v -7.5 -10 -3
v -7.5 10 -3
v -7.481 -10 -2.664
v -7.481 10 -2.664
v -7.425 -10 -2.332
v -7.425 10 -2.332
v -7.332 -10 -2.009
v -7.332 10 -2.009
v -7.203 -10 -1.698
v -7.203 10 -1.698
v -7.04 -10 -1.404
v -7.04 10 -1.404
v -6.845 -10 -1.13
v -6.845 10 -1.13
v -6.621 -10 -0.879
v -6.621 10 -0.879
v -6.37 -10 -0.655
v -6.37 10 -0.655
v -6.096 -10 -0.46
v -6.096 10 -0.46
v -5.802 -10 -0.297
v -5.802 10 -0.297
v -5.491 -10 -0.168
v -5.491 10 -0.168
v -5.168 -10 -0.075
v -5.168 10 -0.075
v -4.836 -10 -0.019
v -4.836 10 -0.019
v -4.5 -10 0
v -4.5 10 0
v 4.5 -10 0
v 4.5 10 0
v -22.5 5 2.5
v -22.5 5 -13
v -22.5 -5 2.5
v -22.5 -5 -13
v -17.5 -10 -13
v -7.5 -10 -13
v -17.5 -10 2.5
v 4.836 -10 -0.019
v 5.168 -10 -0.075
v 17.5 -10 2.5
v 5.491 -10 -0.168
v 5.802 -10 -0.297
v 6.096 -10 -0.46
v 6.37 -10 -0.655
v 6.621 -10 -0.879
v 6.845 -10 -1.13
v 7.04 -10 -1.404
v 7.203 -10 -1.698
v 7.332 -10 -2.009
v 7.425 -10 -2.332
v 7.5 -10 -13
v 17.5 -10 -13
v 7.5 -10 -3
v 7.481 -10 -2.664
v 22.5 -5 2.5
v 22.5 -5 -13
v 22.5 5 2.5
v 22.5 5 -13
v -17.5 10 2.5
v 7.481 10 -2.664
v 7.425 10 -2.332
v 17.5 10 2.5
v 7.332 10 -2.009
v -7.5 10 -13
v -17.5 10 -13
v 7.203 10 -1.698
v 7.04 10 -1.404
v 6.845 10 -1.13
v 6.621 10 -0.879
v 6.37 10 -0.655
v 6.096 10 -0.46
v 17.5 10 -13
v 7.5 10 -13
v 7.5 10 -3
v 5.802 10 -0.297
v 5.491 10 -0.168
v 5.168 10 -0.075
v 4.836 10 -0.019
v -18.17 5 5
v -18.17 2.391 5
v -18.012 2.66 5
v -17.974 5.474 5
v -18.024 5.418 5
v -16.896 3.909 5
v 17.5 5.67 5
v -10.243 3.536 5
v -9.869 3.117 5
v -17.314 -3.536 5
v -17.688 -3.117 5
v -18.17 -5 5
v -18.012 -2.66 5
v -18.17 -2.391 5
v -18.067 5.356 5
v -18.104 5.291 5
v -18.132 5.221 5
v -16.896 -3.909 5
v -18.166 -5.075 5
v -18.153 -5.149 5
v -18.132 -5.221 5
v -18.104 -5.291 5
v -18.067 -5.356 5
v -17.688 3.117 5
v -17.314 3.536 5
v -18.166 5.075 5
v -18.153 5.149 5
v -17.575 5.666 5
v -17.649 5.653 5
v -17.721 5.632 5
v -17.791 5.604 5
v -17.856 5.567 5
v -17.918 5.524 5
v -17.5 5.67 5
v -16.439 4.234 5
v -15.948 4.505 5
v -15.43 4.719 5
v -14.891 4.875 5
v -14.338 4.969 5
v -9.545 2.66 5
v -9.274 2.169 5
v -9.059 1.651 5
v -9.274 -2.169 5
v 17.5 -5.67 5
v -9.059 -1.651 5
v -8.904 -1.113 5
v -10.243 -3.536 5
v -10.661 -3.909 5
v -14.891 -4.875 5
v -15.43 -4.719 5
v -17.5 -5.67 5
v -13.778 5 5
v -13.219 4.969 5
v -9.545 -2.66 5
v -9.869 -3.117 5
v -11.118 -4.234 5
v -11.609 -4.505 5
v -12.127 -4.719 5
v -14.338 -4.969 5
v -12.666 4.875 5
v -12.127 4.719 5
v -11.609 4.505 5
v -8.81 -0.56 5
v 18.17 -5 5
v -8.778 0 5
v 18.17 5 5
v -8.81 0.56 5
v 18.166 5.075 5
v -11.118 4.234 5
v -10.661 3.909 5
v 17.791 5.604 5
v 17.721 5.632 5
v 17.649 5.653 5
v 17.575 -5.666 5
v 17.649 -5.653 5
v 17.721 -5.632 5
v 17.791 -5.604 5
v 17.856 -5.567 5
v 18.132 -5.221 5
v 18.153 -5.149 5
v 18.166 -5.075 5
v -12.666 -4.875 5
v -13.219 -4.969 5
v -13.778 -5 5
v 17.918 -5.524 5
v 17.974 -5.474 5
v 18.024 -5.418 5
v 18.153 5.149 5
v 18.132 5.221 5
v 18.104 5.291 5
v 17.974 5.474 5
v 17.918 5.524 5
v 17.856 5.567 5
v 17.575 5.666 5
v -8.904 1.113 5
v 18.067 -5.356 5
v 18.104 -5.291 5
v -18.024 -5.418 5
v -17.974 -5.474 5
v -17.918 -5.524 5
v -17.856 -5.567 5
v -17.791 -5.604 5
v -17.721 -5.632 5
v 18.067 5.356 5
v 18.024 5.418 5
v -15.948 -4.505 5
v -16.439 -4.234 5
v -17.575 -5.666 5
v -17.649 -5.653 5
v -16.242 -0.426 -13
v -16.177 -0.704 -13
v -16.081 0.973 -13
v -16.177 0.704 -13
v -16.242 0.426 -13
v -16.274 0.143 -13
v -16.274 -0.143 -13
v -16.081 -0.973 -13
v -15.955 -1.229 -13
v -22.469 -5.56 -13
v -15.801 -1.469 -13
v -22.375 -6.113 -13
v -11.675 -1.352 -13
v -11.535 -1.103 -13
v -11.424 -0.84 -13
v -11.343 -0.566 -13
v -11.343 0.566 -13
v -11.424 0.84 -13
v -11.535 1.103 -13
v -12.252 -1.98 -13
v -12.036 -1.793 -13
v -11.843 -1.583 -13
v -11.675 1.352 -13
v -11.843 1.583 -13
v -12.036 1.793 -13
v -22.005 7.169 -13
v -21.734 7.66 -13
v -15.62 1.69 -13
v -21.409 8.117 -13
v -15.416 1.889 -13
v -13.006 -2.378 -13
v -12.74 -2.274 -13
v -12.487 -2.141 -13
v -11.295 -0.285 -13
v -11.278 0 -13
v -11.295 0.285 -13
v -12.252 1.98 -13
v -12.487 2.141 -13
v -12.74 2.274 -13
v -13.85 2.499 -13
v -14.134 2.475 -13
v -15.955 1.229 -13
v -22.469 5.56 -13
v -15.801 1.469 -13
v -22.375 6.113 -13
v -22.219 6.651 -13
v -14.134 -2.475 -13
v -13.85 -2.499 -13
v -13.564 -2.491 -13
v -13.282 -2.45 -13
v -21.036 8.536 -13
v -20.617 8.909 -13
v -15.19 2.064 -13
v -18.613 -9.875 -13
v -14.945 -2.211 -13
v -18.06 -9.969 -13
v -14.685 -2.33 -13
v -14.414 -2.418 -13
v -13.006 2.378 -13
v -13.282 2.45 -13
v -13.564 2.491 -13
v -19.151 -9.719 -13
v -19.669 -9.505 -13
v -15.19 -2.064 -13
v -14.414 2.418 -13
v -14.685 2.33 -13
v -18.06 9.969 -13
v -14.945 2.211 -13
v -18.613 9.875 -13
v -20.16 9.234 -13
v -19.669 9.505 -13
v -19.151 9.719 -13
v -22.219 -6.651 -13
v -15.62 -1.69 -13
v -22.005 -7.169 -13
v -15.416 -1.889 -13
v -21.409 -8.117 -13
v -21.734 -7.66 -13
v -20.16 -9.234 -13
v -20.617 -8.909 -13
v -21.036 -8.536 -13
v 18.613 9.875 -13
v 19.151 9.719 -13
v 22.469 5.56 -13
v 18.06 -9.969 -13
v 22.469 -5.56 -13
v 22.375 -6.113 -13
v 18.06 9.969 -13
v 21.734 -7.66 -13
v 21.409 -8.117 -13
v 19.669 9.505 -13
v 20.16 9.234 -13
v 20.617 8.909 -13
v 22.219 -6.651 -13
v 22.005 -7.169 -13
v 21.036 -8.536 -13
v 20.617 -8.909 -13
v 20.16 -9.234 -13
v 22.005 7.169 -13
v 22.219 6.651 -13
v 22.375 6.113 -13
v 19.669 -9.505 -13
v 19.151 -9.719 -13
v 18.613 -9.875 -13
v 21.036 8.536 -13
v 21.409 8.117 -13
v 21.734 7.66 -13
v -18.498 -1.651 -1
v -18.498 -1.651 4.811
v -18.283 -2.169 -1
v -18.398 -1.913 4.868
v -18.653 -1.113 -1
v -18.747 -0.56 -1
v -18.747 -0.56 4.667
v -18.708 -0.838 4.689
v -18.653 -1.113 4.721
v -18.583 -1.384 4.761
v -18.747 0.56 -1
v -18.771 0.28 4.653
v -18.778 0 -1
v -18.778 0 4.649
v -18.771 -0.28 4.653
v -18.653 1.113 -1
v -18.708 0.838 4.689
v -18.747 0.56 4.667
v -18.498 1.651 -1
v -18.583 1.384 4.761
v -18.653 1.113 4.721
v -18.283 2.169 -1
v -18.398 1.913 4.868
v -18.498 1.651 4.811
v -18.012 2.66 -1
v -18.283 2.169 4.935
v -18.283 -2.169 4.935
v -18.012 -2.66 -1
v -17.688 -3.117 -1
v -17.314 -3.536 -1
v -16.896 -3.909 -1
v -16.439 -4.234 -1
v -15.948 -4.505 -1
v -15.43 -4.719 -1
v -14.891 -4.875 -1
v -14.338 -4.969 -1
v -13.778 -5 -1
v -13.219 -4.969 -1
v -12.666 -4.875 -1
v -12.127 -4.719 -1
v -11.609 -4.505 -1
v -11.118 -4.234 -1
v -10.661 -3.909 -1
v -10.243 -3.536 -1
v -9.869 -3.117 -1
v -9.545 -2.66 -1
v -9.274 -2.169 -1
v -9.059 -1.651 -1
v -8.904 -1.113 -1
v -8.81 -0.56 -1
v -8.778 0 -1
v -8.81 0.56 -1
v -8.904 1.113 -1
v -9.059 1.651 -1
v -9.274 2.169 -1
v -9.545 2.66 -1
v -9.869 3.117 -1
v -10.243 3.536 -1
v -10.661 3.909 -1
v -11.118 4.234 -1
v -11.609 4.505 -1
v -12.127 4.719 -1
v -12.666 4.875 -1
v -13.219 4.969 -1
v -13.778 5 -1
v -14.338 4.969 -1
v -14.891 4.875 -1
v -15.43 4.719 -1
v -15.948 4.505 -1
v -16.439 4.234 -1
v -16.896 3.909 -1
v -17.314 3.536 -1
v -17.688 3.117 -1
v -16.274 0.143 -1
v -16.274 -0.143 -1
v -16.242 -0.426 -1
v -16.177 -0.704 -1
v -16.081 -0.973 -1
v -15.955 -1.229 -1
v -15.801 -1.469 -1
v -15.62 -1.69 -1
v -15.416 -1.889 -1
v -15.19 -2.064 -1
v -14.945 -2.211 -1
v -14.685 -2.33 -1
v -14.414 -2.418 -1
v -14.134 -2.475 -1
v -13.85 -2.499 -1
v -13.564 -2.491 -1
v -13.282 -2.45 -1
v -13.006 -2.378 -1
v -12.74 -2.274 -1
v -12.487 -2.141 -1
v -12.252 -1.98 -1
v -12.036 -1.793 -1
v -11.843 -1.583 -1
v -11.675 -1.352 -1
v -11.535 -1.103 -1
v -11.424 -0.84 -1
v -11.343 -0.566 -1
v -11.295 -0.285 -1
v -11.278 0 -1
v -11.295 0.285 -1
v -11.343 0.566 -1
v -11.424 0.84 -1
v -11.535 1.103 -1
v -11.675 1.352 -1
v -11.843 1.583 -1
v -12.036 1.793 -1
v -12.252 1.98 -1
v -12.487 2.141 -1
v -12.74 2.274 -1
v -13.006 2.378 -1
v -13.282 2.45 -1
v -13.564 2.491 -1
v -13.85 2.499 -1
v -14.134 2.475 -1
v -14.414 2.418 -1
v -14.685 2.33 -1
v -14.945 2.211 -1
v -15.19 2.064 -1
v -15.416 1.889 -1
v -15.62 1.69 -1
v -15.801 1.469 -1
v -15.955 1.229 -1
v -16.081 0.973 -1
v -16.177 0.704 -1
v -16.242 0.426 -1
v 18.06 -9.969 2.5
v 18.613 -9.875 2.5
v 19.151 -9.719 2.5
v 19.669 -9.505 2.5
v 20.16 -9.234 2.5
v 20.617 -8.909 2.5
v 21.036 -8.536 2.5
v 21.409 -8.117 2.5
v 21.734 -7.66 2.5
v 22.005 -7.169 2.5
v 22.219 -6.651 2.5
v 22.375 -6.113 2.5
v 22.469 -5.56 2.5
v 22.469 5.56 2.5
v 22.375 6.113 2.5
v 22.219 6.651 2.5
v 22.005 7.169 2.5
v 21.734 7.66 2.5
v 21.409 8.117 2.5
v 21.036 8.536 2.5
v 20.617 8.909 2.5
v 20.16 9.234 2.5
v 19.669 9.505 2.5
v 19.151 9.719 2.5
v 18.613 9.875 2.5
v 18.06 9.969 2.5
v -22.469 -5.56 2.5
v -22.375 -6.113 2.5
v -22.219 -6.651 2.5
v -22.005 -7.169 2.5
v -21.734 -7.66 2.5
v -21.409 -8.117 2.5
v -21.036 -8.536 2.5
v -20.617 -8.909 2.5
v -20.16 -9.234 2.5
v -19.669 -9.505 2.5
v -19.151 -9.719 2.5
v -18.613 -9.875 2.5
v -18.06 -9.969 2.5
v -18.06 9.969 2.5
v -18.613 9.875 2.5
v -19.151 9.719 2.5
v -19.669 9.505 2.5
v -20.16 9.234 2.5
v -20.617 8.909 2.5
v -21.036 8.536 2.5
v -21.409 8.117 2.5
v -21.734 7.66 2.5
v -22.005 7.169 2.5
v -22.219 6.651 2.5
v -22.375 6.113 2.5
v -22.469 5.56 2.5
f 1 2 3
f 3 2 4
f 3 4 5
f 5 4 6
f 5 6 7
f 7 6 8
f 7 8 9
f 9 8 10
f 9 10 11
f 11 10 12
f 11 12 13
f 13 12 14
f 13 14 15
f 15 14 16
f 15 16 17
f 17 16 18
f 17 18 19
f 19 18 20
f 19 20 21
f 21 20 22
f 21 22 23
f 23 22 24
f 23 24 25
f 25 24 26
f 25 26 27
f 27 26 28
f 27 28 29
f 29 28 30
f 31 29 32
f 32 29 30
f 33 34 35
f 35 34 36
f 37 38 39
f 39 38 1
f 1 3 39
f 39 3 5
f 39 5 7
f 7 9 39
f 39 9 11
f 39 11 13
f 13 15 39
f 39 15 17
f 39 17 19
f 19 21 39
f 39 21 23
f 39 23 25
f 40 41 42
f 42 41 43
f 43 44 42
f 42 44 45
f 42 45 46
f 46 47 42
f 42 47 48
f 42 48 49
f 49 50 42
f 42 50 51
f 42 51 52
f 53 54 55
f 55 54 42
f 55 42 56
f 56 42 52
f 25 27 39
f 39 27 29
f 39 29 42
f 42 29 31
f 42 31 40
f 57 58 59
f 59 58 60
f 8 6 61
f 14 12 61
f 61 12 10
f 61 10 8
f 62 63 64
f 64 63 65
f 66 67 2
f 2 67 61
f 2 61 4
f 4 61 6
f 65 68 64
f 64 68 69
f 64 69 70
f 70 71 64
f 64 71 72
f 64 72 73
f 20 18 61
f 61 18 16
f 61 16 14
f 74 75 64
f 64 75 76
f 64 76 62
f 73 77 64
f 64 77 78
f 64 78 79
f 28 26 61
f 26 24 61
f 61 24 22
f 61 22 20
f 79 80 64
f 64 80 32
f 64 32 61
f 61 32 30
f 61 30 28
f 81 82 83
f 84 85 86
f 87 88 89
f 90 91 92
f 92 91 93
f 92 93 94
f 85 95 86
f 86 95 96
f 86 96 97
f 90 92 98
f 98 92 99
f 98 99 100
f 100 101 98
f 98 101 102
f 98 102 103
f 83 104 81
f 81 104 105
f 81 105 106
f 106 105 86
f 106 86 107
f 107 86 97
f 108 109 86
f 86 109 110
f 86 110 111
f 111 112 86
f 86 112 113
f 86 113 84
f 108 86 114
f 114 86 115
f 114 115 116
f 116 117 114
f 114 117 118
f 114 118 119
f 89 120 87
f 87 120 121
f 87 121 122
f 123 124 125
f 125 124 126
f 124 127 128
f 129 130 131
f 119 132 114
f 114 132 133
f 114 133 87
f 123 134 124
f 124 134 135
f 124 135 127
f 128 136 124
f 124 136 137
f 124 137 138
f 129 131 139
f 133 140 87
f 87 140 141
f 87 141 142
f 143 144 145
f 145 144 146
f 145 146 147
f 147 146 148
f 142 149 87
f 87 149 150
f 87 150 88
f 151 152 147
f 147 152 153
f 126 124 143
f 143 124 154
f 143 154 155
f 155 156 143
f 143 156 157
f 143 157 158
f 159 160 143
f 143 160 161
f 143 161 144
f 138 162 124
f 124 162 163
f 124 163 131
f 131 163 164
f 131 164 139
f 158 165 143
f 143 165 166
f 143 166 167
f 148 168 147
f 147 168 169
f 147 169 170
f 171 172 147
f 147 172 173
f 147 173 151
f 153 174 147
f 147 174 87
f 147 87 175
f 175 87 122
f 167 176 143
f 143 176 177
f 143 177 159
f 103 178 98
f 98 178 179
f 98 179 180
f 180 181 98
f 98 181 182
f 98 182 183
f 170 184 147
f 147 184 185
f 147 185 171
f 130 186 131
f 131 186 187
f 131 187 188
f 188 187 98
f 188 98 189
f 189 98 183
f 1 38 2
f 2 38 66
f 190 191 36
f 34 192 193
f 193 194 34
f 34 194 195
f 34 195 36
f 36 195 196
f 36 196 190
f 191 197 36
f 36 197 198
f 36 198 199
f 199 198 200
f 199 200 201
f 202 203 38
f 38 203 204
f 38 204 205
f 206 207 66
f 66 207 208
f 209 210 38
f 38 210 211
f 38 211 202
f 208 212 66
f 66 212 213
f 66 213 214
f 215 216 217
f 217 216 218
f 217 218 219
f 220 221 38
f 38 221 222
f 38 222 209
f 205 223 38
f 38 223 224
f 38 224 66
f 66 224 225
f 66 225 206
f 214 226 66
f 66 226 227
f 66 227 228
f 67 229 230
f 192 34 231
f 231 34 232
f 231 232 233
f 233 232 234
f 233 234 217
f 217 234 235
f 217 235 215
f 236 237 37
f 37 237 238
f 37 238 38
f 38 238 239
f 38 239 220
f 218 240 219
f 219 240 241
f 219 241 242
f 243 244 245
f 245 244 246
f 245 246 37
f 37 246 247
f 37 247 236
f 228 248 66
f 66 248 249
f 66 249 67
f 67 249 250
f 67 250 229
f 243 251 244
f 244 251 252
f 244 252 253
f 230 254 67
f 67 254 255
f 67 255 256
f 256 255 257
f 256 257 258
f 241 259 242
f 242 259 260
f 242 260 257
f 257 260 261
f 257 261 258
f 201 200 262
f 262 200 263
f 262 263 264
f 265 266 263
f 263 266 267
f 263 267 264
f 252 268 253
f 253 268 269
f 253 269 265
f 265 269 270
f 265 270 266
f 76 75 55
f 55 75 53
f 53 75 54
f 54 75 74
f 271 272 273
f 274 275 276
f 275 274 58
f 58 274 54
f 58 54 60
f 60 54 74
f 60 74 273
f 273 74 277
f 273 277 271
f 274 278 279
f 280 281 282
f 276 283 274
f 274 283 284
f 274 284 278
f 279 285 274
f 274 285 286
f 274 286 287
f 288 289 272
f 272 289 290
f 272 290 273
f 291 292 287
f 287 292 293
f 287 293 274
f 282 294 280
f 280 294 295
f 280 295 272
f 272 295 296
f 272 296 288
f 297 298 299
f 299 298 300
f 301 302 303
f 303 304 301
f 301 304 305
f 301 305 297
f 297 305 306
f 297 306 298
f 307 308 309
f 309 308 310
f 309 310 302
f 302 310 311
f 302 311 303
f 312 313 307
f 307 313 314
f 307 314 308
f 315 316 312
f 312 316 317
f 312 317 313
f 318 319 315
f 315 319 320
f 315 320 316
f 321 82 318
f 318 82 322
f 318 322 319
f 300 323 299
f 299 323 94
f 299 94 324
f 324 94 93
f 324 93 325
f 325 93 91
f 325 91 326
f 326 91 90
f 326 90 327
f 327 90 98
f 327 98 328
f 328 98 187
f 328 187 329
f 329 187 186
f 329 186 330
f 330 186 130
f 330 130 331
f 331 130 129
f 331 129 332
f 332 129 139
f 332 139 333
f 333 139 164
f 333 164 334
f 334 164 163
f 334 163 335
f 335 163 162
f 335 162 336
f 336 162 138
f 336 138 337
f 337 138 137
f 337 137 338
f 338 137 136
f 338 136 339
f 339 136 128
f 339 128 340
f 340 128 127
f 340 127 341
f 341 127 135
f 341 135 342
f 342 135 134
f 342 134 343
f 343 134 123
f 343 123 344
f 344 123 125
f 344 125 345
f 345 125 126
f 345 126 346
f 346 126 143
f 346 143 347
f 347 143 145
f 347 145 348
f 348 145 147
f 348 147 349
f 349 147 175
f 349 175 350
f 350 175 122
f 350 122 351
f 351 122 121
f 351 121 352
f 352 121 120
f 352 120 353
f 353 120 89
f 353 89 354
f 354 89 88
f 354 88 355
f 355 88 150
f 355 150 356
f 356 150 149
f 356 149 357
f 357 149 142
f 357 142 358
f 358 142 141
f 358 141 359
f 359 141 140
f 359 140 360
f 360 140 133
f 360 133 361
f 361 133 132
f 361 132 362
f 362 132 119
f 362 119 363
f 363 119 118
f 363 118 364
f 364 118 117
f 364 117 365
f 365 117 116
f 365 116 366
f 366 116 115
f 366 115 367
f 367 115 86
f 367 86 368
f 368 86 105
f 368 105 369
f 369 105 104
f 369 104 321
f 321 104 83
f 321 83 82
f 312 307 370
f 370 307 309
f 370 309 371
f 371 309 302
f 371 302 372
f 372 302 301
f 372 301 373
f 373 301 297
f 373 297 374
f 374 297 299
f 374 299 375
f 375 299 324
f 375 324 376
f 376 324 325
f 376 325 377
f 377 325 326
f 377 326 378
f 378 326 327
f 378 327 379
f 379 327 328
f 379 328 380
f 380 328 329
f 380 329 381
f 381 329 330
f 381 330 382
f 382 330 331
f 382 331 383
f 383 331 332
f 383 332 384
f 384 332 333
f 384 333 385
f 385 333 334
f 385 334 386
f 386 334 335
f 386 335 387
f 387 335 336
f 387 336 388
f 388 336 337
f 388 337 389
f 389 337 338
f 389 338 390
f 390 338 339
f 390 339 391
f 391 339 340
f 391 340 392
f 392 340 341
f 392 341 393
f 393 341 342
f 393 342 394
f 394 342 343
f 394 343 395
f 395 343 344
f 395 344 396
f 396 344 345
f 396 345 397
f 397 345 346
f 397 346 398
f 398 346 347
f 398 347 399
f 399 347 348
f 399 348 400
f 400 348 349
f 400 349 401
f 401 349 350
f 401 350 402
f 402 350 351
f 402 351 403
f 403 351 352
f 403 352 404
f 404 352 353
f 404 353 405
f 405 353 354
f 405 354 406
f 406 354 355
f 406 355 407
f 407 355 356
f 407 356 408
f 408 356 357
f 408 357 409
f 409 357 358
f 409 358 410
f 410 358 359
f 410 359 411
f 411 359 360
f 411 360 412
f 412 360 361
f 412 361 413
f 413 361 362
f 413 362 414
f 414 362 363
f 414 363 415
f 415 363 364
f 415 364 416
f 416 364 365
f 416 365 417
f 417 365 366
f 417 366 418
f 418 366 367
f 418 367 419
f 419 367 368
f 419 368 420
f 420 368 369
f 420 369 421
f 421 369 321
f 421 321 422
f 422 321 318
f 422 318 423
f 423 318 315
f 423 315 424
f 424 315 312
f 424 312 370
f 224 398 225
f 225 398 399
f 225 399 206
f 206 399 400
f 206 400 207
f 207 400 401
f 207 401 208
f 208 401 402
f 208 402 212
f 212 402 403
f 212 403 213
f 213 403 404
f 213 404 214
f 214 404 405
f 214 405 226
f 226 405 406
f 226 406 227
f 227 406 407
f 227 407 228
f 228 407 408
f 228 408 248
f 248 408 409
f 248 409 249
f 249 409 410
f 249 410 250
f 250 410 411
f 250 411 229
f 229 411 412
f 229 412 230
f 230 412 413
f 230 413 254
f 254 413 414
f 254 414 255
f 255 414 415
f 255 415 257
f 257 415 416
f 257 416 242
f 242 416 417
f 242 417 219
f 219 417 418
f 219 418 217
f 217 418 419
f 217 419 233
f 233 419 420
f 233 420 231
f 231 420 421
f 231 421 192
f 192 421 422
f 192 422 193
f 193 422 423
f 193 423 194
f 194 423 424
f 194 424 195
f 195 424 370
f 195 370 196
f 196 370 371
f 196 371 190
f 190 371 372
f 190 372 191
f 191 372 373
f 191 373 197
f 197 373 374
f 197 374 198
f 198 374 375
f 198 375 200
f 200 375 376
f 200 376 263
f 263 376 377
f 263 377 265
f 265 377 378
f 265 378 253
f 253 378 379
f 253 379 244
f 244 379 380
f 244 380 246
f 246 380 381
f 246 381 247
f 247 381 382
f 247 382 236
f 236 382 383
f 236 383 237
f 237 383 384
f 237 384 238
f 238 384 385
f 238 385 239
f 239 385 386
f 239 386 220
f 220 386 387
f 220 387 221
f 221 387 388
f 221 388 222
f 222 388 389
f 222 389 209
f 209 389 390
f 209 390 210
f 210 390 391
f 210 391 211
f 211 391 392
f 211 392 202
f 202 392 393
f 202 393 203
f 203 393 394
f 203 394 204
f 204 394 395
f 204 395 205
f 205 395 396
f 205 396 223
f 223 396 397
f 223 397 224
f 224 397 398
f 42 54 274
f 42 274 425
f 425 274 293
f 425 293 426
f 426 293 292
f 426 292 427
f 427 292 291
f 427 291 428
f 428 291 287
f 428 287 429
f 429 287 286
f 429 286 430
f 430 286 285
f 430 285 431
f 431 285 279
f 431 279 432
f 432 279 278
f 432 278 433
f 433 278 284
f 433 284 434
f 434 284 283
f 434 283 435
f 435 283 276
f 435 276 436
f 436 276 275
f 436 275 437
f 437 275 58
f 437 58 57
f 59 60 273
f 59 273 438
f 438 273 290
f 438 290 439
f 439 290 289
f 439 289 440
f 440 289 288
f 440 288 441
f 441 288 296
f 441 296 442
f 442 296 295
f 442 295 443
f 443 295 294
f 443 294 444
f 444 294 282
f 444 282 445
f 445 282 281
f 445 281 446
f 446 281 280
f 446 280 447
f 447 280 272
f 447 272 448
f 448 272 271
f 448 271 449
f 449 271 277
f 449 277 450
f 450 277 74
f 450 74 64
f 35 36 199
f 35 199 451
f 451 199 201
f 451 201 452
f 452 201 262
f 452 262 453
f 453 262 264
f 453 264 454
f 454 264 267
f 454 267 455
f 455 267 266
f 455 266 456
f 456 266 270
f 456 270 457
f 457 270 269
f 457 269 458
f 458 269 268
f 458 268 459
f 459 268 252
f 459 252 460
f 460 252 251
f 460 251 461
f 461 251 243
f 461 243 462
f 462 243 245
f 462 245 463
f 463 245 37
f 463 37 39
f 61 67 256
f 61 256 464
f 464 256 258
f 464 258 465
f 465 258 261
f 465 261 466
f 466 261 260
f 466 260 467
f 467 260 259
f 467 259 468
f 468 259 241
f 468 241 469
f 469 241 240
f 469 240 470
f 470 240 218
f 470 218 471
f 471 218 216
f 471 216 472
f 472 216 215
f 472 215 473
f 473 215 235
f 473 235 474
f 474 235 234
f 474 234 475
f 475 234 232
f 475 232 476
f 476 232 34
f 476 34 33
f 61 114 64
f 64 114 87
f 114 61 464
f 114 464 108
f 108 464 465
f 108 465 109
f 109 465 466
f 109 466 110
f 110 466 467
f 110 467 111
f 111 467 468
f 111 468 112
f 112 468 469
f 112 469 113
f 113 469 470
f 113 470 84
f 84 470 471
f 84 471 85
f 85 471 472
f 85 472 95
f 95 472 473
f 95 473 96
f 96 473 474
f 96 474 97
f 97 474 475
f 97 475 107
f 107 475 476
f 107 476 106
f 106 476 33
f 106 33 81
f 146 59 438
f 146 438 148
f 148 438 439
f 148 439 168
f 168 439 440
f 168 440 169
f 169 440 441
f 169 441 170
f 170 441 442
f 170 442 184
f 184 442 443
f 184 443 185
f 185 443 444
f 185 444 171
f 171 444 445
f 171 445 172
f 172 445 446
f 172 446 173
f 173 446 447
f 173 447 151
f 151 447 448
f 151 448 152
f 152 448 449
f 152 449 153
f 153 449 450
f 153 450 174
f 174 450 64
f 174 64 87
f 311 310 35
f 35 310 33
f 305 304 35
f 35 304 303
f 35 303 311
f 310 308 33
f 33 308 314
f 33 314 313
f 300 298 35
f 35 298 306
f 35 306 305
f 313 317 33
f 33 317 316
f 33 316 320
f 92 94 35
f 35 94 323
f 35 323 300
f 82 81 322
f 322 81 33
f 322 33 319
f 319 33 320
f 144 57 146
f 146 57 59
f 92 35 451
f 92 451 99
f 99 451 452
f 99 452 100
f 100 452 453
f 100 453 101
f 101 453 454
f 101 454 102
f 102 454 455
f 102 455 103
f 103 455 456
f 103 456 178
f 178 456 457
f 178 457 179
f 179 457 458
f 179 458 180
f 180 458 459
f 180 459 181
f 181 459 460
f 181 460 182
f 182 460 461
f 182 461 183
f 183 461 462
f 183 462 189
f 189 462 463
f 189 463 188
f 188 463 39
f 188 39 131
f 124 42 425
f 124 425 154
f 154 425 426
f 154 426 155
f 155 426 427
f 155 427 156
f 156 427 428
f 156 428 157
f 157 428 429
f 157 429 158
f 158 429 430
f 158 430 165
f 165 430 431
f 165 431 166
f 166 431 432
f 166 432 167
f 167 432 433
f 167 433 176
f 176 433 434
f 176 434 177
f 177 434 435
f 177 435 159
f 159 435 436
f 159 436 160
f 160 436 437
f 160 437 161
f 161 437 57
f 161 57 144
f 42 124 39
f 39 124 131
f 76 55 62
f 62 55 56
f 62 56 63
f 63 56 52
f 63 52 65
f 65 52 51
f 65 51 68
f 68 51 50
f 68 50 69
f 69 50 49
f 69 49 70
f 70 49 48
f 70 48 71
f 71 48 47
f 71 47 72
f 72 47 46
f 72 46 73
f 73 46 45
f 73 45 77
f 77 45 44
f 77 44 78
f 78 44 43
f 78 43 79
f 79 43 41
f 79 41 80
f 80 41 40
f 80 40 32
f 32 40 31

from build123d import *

# Parameters (mm, degrees)
SKETCH1_W       = 45
SKETCH1_H       = 20
EXTRUDE1_DEPTH  = 5
SKETCH2_W       = 15
SKETCH2_H       = 20
EXTRUDE2_DEPTH  = 13
SKETCH3_R       = 5
EXTRUDE3_DEPTH  = 6
SKETCH4_R       = 2.5
EXTRUDE4_DEPTH  = 16
FILLET1_R       = 5
CHAMFER1_SIZE   = 4.330127019
CHAMFER1_SIZE_2 = 2.5
FILLET2_R       = 3
FILLET3_R       = 3


with BuildPart() as part:
    # Sketch1 → Extrude1 (new body)
    with BuildSketch(Plane.XY):
        Rectangle(SKETCH1_W, SKETCH1_H)
    extrude(amount=EXTRUDE1_DEPTH)

    # Sketch2 → Extrude2 (add)
    with BuildSketch(Plane(origin=(0, 0, 0), x_dir=(-1, 0, 0), z_dir=(0, 0, -1))):
        with Locations((15, 0)):
            Rectangle(SKETCH2_W, SKETCH2_H)
        with Locations((-15, 0)):
            Rectangle(SKETCH2_W, SKETCH2_H)
    extrude(amount=EXTRUDE2_DEPTH)

    # Sketch3 → Extrude3 (cut)
    with BuildSketch(Plane.XY.offset(5)):
        with Locations((-13.77840955, 0)):
            Circle(SKETCH3_R)
    extrude(amount=-EXTRUDE3_DEPTH, mode=Mode.SUBTRACT)

    # Sketch4 → Extrude4 (cut)
    with BuildSketch(Plane.XY.offset(-1)):
        with Locations((-13.77840955, 0)):
            Circle(SKETCH4_R)
    extrude(amount=-EXTRUDE4_DEPTH, mode=Mode.SUBTRACT)

    # Fillet1
    fillet1_edges = [part.edges().sort_by_distance(p)[0] for p in [
        (-22.5, 10, -4),
        (22.5, 10, -4),
        (22.5, -10, -4),
        (-22.5, -10, -4),
    ]]
    fillet(fillet1_edges, radius=FILLET1_R)

    # Chamfer1
    # the kernel refuses this chamfer: 4.330127019, 2.5 mm, written as the material it takes off along each edge
    with BuildSketch(Plane(origin=(22.5, 5, 5), x_dir=(-0.999813220622208, 0, 0.01932676561270069), z_dir=(0, -1, 0)), Plane(origin=(-22.5, -5, 5), x_dir=(0.999813220622208, 0, 0.01932676561270069), z_dir=(0, 1, 0))) as chamfer1_piece_1:
        Polygon((CHAMFER1_SIZE * 0.999813220604, CHAMFER1_SIZE * 0.0193267656124), (-CHAMFER1_SIZE_2 * 0.0193267656127, CHAMFER1_SIZE_2 * 0.999813220622), (0, 0), align=None)
    extrude(amount=10, mode=Mode.SUBTRACT)
    with BuildSketch(Plane(origin=(17.5, -10, 5), x_dir=(0, -0.05789386240267114, -0.9983227437537926), z_dir=(-1, 0, 0))) as chamfer1_piece_2:
        Polygon((CHAMFER1_SIZE_2 * 0.998322743754, -CHAMFER1_SIZE_2 * 0.0578938624027), (-CHAMFER1_SIZE * 0.0578938624016, -CHAMFER1_SIZE * 0.998322743736), (0, 0), align=None)
    extrude(amount=35, mode=Mode.SUBTRACT)
    with BuildSketch(Plane(origin=(-17.5, 10, 5), x_dir=(0, -0.999813220622208, 0.01932676561270069), z_dir=(1, 0, 0))) as chamfer1_piece_3:
        Polygon((CHAMFER1_SIZE * 0.999813220604, CHAMFER1_SIZE * 0.0193267656124), (-CHAMFER1_SIZE_2 * 0.0193267656127, CHAMFER1_SIZE_2 * 0.999813220622), (0, 0), align=None)
    extrude(amount=35, mode=Mode.SUBTRACT)
    with BuildSketch(Plane(origin=(-17.5, 5, 5), x_dir=(-1, 0, 0), z_dir=(0, -1, 0))) as chamfer1_piece_4:
        Polygon((5 - CHAMFER1_SIZE, 0), (5, CHAMFER1_SIZE_2), (5, 0), align=None)
    revolve(axis=Axis((-17.5, 5, 5), (0, 0, -1)), revolution_arc=90, mode=Mode.SUBTRACT)
    with BuildSketch(Plane(origin=(-17.5, -5, 5), x_dir=(0, -1, 0), z_dir=(1, 0, 0))) as chamfer1_piece_5:
        Polygon((5 - CHAMFER1_SIZE, 0), (5, CHAMFER1_SIZE_2), (5, 0), align=None)
    revolve(axis=Axis((-17.5, -5, 5), (0, 0, -1)), revolution_arc=90, mode=Mode.SUBTRACT)
    with BuildSketch(Plane(origin=(17.5, 5, 5), x_dir=(1, 0, 0), z_dir=(0, -1, 0))) as chamfer1_piece_6:
        Polygon((5 - CHAMFER1_SIZE, 0), (5, -CHAMFER1_SIZE_2), (5, 0), align=None)
    revolve(axis=Axis((17.5, 5, 5), (0, 0, 1)), revolution_arc=90, mode=Mode.SUBTRACT)
    with BuildSketch(Plane(origin=(17.5, -5, 5), x_dir=(0, -1, 0), z_dir=(-1, 0, 0))) as chamfer1_piece_7:
        Polygon((5 - CHAMFER1_SIZE, 0), (5, -CHAMFER1_SIZE_2), (5, 0), align=None)
    revolve(axis=Axis((17.5, -5, 5), (0, 0, 1)), revolution_arc=90, mode=Mode.SUBTRACT)

    # Fillet2
    fillet2_edges = [part.edges().sort_by_distance(p)[0] for p in [
        (-7.5, 0, 0),
    ]]
    fillet(fillet2_edges, radius=FILLET2_R)

    # Fillet3
    fillet3_edges = [part.edges().sort_by_distance(p)[0] for p in [
        (7.5, 0, 0),
    ]]
    fillet(fillet3_edges, radius=FILLET3_R)


solid = part.part
